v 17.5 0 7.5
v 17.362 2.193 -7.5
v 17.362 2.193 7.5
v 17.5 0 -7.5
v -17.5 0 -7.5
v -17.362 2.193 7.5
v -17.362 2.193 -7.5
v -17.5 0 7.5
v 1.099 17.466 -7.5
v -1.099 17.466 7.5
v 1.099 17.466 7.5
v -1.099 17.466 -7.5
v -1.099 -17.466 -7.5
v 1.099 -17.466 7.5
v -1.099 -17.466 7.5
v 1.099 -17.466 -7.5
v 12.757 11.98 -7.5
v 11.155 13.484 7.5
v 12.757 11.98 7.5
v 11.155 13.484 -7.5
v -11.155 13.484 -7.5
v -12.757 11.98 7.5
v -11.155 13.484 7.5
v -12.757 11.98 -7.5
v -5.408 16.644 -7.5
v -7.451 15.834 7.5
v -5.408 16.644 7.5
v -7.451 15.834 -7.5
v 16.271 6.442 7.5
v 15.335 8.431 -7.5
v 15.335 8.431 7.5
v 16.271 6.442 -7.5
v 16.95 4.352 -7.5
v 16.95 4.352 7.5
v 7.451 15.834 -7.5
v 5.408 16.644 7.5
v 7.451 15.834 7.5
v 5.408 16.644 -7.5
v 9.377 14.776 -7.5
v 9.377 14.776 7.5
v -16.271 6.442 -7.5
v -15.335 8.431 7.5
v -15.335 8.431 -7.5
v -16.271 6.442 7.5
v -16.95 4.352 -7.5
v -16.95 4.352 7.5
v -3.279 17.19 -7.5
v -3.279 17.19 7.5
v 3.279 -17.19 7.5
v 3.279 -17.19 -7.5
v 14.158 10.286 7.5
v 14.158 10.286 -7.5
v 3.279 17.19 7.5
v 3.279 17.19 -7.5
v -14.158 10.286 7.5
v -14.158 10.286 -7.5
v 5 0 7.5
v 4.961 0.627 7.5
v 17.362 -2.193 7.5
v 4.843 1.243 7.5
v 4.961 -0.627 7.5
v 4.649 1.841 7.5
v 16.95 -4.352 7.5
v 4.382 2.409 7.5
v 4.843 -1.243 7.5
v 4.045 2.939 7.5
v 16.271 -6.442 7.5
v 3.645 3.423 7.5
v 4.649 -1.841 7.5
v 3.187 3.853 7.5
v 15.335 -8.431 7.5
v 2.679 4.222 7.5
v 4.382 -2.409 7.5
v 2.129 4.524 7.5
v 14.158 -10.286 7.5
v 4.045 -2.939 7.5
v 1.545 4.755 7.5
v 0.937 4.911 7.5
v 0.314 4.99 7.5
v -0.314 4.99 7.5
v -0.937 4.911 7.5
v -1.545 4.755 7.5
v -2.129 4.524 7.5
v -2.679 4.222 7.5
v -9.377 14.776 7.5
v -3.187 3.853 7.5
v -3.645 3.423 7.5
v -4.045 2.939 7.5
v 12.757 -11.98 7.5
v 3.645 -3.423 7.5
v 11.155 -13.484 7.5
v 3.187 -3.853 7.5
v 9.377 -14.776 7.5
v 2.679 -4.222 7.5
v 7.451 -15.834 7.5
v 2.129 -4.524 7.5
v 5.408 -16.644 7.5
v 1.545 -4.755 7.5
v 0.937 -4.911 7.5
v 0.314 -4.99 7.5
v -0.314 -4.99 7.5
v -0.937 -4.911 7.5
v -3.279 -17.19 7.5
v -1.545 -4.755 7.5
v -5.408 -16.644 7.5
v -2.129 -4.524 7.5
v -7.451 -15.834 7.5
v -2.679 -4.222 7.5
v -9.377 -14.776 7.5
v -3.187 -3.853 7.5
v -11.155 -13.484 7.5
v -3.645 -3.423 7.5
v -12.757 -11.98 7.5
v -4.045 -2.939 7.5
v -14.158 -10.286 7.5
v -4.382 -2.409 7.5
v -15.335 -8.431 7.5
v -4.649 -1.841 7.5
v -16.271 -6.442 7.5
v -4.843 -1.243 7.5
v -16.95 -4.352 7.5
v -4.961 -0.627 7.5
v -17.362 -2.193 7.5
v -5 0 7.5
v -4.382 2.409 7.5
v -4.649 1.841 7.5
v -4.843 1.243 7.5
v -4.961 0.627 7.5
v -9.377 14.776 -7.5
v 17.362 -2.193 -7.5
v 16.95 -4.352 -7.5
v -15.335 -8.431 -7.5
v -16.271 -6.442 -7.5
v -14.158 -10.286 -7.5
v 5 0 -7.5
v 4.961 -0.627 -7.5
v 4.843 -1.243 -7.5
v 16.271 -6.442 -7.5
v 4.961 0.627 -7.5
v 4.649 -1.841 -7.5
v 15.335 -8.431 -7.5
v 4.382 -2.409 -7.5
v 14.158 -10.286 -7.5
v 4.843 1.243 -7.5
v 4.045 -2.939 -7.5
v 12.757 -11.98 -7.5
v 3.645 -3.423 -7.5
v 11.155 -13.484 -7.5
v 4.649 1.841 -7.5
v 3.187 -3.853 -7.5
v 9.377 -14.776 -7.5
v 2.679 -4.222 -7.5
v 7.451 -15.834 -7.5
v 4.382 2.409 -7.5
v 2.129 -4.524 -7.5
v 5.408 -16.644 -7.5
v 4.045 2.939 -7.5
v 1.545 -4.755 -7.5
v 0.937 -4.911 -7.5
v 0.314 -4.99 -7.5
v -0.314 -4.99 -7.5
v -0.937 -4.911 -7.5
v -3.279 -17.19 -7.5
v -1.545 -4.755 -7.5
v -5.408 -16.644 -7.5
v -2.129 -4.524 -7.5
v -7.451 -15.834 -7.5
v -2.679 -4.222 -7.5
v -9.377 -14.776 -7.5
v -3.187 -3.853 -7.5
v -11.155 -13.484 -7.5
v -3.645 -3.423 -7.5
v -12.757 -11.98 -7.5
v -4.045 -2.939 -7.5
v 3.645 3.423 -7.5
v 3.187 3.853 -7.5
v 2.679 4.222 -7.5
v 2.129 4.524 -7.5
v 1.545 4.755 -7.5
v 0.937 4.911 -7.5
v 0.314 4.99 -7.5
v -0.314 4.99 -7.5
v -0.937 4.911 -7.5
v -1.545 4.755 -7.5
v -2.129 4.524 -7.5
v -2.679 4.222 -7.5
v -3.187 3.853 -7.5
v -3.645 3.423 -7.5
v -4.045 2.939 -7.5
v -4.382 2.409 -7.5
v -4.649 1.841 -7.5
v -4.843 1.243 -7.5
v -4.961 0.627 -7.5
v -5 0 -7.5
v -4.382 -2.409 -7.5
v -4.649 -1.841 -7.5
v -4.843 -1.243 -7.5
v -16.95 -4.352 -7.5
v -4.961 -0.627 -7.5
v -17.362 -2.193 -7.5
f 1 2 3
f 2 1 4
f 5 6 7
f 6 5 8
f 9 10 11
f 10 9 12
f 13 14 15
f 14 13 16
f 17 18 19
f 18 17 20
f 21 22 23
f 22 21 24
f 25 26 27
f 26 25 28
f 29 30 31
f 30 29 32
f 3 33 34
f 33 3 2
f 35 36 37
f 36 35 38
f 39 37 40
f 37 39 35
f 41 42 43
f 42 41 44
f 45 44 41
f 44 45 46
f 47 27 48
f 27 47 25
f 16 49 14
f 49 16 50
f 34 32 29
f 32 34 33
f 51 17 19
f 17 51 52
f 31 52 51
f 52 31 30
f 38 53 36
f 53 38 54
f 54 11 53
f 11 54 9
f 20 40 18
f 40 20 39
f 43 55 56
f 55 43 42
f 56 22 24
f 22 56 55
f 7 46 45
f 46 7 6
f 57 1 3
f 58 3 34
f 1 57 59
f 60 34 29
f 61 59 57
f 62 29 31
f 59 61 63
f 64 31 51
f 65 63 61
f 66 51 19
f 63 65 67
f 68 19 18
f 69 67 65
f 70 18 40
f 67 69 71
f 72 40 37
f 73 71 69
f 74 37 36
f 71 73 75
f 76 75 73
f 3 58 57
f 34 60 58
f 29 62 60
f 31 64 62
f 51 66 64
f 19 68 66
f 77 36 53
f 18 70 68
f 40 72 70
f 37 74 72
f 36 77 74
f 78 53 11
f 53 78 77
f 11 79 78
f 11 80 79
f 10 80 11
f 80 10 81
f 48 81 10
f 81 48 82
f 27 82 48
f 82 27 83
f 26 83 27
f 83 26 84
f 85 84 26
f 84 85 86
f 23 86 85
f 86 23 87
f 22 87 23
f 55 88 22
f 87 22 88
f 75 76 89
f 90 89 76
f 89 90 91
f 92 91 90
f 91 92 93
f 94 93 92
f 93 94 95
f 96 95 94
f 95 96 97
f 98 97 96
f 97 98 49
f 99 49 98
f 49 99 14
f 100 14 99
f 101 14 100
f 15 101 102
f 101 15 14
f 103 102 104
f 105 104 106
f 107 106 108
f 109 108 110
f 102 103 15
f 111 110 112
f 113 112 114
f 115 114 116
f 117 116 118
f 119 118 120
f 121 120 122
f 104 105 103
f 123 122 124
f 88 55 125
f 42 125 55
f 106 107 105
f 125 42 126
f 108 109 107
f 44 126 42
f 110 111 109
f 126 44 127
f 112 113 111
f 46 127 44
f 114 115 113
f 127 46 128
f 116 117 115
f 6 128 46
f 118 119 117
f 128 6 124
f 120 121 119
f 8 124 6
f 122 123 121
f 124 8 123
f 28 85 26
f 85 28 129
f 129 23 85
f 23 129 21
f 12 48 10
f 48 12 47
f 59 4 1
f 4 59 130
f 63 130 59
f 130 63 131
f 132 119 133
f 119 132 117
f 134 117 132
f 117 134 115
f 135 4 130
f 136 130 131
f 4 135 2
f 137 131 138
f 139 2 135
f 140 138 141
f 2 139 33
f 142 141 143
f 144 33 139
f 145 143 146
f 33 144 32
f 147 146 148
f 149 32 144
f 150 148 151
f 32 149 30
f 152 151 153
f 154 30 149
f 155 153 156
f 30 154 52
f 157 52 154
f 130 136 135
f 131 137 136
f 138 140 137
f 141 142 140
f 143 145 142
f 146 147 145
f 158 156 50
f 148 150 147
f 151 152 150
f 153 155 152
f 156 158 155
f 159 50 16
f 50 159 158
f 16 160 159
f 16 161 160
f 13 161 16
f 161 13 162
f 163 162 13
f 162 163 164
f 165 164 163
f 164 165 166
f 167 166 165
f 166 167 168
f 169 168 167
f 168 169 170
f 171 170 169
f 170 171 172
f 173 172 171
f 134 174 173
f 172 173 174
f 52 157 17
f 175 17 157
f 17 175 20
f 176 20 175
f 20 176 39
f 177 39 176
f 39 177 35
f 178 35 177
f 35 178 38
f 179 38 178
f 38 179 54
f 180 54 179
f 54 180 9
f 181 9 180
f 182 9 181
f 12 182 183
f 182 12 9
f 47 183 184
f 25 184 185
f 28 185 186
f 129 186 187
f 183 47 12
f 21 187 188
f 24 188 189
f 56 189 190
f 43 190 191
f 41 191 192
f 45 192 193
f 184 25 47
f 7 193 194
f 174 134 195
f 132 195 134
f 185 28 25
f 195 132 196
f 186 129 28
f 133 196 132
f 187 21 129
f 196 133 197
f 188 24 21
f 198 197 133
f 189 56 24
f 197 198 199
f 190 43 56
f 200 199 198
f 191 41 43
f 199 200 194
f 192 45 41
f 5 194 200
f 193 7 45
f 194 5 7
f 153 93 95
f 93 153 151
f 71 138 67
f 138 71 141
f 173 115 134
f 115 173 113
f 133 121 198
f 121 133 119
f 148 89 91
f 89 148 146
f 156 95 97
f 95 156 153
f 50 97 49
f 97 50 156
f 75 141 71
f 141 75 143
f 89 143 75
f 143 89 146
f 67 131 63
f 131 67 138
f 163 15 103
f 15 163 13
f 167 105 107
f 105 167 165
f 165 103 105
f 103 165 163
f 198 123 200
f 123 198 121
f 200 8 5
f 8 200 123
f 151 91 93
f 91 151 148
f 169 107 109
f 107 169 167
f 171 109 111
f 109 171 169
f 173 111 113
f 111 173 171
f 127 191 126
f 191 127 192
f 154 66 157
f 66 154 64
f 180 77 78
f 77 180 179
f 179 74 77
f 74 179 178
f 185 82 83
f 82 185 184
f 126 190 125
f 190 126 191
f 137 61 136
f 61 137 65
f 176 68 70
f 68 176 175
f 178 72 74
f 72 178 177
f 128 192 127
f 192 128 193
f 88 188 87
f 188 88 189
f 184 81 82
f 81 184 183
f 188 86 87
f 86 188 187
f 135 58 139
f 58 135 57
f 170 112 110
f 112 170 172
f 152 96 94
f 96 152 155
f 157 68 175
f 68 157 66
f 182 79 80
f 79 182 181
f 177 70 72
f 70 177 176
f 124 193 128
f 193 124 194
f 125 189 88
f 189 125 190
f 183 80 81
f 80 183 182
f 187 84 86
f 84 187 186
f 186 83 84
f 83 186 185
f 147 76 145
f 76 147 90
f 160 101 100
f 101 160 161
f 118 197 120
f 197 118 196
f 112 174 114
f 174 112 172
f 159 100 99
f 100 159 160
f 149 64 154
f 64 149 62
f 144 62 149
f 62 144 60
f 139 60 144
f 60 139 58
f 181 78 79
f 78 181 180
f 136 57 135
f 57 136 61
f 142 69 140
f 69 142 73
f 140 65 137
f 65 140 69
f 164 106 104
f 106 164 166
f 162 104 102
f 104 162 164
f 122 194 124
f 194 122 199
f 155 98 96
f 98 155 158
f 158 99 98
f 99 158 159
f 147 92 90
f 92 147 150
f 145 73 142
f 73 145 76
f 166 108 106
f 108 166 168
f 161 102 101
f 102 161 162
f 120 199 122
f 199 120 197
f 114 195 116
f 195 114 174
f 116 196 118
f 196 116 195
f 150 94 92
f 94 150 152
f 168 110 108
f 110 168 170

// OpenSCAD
$fn = 50;


difference() {
	union() {
		translate(v = [0, 0, -7.5000000000]) {
			cylinder(h = 15, r = 17.5000000000);
		}
	}
	union() {
		translate(v = [0, 0, -100.0000000000]) {
			cylinder(h = 200, r = 5);
		}
	}
}
